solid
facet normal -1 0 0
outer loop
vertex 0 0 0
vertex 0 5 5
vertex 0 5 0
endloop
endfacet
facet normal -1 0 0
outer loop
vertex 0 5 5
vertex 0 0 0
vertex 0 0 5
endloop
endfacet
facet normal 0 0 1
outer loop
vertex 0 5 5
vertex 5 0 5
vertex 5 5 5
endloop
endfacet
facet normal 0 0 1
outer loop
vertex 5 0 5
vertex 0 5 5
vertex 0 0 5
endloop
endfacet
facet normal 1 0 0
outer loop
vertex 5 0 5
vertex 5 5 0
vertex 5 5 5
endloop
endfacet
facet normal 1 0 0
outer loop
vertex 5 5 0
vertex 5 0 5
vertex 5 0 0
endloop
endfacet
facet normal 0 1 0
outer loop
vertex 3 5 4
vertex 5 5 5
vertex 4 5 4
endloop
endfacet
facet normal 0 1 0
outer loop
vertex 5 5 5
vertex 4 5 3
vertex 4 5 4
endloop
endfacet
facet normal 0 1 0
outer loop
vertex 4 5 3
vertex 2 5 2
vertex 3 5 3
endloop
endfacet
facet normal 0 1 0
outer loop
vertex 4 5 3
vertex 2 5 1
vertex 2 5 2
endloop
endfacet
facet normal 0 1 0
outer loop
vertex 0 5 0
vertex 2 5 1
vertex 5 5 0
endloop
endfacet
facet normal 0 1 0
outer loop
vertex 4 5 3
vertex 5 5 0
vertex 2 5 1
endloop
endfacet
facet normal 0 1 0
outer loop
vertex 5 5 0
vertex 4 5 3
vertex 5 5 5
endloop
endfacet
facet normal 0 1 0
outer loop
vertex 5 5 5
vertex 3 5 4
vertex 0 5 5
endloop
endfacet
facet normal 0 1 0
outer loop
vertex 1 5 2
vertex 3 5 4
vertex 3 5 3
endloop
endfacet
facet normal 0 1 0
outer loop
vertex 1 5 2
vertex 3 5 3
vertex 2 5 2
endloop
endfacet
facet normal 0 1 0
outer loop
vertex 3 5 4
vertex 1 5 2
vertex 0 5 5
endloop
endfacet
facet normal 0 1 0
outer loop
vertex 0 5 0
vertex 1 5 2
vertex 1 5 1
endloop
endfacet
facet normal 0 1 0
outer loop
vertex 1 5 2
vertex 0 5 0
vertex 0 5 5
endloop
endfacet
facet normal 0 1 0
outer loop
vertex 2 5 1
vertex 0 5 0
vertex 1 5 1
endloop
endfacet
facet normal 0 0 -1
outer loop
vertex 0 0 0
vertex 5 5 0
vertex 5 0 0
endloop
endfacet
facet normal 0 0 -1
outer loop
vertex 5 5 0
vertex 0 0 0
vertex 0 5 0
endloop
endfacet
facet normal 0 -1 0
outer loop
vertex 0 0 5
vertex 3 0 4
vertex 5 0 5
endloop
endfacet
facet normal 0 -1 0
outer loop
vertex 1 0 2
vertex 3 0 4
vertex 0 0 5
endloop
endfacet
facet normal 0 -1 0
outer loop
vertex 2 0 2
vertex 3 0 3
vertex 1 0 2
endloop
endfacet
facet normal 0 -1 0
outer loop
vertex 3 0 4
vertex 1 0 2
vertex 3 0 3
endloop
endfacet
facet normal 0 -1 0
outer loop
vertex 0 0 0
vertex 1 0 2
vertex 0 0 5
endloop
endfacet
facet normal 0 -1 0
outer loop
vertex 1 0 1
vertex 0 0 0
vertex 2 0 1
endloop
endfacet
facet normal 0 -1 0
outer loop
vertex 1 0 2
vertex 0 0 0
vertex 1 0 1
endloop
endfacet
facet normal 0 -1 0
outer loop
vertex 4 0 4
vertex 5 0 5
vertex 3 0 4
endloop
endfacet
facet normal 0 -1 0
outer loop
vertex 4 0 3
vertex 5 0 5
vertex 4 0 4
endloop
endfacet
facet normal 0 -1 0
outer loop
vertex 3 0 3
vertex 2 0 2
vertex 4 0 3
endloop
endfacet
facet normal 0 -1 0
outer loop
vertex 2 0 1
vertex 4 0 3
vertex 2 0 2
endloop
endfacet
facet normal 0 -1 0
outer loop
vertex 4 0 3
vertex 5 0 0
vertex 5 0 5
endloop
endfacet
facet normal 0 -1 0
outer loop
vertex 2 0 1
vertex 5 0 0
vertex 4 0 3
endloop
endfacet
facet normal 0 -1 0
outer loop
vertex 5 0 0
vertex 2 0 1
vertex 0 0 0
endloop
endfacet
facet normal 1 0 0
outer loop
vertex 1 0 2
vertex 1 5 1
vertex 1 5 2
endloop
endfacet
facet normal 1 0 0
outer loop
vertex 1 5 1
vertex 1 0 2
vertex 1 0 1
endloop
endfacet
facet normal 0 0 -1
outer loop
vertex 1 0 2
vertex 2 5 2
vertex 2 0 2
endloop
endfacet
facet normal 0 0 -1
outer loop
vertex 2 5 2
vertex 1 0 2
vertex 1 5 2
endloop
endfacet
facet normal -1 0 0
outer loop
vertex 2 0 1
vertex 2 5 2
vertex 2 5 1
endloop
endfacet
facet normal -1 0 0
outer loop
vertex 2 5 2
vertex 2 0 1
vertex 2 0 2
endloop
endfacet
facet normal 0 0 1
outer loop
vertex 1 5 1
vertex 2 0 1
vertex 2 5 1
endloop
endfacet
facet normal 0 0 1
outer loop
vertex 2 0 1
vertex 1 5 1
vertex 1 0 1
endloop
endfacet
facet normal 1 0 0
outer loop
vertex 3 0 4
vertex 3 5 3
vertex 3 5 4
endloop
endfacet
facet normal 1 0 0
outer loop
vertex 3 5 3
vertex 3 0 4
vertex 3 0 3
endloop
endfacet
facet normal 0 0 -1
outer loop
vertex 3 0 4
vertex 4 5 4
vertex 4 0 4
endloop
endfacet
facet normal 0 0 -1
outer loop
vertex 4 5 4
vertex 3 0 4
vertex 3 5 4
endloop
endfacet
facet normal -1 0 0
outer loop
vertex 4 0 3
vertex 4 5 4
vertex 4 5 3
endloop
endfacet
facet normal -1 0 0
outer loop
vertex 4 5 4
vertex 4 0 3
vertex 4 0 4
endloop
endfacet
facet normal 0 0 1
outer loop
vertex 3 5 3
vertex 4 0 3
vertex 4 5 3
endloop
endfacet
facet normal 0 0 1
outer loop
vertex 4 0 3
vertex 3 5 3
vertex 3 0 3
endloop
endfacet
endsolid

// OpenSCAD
difference() {
  translate([2.5000000000, 2.5000000000, 2.5000000000]) {
    scale([5.0000000000, 5.0000000000, 5.0000000000]) {
      translate([-0.5000000000, -0.5000000000, -0.5000000000]) {
        cube([1, 1, 1]);
      }
    }
  }
  union() {
    difference() {
      translate([3.5000000000, 2.5000000000, 3.5000000000]) {
        scale([1.0000000000, 5.0000000000, 1.0000000000]) {
          translate([-0.5000000000, -0.5000000000, -0.5000000000]) {
            cube([1, 1, 1]);
          }
        }
      }
      /* EMPTY */ sphere(r = 0);
    }
    difference() {
      translate([1.5000000000, 2.5000000000, 1.5000000000]) {
        scale([1.0000000000, 5.0000000000, 1.0000000000]) {
          translate([-0.5000000000, -0.5000000000, -0.5000000000]) {
            cube([1, 1, 1]);
          }
        }
      }
      /* EMPTY */ sphere(r = 0);
    }
  }
}
